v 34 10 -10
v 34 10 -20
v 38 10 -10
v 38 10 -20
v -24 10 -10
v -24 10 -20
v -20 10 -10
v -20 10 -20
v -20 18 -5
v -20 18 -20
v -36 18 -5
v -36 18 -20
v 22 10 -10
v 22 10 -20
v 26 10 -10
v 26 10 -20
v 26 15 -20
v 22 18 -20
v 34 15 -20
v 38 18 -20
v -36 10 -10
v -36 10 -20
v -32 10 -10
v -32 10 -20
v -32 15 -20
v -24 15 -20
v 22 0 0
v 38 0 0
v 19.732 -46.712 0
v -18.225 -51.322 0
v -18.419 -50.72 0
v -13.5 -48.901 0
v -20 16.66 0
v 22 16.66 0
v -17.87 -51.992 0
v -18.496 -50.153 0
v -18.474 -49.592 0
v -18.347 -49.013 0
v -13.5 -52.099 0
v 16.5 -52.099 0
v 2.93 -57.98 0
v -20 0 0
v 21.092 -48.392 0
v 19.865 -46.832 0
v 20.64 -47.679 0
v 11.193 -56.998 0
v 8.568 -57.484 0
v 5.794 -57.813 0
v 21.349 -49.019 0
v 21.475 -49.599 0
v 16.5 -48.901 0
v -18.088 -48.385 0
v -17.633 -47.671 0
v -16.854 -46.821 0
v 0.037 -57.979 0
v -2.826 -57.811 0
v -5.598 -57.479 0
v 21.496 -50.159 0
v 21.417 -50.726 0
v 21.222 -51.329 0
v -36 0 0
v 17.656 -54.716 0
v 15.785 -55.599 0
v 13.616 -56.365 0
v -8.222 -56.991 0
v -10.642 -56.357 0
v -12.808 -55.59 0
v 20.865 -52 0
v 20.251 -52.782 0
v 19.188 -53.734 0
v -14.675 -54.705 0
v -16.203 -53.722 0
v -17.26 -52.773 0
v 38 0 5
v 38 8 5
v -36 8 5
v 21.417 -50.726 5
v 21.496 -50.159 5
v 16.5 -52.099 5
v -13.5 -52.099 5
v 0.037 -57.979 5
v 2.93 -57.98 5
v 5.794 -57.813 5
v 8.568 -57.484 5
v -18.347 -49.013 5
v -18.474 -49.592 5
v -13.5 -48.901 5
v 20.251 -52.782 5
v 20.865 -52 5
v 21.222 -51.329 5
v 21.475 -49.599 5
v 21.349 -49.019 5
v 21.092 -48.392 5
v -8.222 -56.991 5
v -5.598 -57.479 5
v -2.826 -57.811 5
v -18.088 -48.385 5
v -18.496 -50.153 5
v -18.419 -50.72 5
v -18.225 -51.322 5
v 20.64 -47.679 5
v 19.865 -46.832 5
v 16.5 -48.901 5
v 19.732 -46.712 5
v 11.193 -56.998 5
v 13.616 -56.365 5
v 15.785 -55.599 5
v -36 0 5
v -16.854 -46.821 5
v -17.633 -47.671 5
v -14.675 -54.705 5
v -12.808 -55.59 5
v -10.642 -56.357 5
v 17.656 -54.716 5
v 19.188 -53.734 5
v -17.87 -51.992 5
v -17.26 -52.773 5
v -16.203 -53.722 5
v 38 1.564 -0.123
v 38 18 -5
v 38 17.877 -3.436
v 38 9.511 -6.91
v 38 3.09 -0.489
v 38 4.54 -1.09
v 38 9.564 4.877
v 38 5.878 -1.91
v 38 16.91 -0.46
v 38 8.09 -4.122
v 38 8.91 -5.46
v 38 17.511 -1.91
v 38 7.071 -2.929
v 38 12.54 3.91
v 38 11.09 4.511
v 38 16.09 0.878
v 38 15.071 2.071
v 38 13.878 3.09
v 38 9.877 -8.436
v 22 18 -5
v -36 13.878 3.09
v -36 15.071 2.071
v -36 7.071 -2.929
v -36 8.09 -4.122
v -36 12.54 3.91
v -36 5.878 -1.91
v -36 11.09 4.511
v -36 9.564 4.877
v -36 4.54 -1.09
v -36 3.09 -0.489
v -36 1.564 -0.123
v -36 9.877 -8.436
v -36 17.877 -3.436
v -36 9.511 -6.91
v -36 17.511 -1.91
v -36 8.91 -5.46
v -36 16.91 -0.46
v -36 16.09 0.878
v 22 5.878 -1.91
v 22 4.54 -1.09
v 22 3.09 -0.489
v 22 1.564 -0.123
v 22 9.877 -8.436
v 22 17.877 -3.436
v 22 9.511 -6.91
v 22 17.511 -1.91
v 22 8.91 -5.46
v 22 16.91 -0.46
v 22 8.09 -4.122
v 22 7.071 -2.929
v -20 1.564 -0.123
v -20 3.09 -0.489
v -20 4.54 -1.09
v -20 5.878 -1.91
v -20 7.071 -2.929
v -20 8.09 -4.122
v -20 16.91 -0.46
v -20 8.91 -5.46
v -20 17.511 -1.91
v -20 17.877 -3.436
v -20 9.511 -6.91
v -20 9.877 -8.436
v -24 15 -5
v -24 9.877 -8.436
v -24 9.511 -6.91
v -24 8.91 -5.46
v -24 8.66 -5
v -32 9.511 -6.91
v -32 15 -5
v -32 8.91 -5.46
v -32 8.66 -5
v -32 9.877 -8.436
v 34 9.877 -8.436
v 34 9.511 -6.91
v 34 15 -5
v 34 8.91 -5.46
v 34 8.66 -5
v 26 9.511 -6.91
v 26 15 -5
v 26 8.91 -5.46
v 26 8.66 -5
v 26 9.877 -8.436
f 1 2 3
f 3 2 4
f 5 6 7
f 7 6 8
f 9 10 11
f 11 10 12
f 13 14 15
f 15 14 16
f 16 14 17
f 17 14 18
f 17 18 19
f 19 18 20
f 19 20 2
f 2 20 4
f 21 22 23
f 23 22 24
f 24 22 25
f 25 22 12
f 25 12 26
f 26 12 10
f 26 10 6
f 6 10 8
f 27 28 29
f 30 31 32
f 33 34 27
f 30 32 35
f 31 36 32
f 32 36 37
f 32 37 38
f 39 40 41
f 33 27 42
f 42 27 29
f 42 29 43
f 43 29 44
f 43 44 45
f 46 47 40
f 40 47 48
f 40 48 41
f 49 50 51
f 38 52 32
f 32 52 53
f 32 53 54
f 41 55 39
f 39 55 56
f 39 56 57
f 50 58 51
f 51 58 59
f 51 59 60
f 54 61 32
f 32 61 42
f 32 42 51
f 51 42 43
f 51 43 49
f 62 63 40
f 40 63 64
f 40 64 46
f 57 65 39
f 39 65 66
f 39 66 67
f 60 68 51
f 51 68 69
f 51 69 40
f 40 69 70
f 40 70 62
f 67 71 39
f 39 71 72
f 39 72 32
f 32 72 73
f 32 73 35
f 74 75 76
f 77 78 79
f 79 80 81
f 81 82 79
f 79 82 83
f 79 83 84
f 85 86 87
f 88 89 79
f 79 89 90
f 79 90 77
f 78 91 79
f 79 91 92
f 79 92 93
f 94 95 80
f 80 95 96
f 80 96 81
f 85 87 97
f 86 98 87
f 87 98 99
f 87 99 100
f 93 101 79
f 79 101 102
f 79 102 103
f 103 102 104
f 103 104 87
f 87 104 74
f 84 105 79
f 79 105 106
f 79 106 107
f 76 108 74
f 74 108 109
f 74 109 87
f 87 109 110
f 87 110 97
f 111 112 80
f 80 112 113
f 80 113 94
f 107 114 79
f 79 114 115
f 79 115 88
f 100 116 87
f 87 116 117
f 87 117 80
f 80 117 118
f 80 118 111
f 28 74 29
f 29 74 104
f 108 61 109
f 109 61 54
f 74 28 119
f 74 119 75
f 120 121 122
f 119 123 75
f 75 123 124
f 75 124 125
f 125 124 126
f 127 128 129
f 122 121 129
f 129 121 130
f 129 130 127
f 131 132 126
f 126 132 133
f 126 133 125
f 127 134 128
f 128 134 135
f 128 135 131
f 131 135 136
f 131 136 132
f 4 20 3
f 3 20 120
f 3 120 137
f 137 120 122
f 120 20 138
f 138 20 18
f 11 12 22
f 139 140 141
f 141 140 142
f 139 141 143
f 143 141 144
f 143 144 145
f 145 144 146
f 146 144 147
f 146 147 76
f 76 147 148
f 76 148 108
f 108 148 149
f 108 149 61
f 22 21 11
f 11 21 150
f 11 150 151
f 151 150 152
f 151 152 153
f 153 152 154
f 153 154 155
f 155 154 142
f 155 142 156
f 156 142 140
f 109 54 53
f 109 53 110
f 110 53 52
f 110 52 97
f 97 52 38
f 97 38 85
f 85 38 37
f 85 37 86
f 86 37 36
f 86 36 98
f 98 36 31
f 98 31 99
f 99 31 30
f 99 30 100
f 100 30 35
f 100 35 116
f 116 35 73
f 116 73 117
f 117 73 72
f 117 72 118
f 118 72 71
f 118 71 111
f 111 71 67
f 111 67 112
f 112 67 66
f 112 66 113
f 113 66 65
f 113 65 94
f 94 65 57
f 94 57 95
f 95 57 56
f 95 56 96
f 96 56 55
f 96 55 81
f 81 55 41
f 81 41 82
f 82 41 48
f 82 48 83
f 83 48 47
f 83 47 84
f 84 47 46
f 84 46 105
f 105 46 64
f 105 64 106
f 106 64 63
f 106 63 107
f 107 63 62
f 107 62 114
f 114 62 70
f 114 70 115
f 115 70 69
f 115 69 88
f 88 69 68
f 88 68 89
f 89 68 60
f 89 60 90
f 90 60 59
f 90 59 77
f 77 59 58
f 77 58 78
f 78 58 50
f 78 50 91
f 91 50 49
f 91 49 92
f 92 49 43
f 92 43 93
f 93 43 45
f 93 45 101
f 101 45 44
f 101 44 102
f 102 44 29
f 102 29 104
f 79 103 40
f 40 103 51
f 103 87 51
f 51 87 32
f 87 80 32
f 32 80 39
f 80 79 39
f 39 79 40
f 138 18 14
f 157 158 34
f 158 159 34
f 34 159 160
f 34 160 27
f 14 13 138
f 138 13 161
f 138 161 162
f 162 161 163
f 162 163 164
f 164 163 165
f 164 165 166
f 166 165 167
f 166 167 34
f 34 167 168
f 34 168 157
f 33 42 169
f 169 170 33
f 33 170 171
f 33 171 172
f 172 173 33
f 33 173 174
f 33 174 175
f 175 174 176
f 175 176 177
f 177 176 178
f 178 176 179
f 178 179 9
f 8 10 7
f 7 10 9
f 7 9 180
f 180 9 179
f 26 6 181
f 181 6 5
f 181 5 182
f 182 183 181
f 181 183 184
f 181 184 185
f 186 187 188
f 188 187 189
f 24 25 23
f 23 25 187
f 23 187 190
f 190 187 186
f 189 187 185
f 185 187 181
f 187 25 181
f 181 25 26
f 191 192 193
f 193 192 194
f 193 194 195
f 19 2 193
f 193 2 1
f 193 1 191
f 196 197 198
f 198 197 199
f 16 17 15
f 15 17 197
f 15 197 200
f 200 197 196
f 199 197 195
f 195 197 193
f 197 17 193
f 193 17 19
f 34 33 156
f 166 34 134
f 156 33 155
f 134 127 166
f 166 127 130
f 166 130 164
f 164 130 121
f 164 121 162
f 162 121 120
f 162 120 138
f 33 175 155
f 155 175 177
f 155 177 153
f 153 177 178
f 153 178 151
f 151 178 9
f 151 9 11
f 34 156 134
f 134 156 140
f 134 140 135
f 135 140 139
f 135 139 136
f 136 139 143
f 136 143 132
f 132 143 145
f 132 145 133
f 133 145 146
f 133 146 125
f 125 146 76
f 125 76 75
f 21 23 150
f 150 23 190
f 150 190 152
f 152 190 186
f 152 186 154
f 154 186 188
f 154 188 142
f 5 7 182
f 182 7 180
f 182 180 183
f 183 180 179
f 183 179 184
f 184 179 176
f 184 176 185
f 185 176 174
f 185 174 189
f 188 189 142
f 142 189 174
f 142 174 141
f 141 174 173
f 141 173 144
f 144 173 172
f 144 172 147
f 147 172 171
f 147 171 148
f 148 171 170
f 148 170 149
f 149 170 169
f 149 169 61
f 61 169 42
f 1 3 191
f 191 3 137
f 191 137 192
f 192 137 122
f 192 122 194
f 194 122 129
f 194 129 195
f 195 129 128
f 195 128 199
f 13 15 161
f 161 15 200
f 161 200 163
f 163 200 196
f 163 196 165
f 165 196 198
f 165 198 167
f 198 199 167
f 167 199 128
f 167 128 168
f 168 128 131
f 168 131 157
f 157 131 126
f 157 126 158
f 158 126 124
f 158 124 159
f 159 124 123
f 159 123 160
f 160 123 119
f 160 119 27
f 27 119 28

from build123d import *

# Parameters (mm, degrees)
PLATE_FEATURE_DEPTH        = 5
STRAP_FEATURE_SKETCH_RX    = 20
STRAP_FEATURE_SKETCH_RY    = 8
STRAP_FEATURE_DEPTH        = 5
STRAP_CUT_SKETCH_W         = 30
STRAP_CUT_SKETCH_H         = 3.19824666
STRAP_CUT_DEPTH            = 5
LEFT_LEG_FEATURE_SKETCH_W  = 16
LEFT_LEG_FEATURE_SKETCH_H  = 8
LEFT_LEG_FEATURE_DEPTH     = 20
RIGHT_LEG_FEATURE_SKETCH_W = 16
RIGHT_LEG_FEATURE_SKETCH_H = 8
RIGHT_LEG_FEATURE_DEPTH    = 20
TAB_CUT_SKETCH_W           = 8
TAB_CUT_SKETCH_H           = 15
TAB_CUT_DEPTH              = 5
FILLET1_R                  = 10
FILLET2_R                  = 10
FILLET3_R                  = 10


with BuildPart() as part:
    # Plate Feature Sketch → Plate Feature (new body)
    with BuildSketch(Plane.XY):
        Polygon((-36, 18), (-36, 0), (-15.55368079, -50), (18.44631921, -50), (38, 0), (38, 18), align=None)
    extrude(amount=PLATE_FEATURE_DEPTH)

    # Strap Feature Sketch → Strap Feature (add)
    with BuildSketch(Plane.XY):
        with Locations((1.5, -50)):
            Ellipse(STRAP_FEATURE_SKETCH_RX, STRAP_FEATURE_SKETCH_RY)
    extrude(amount=STRAP_FEATURE_DEPTH)

    # Strap Cut Sketch → Strap Cut (cut)
    with BuildSketch(Plane.XY):
        with Locations((1.5, -50.5)):
            Rectangle(STRAP_CUT_SKETCH_W, STRAP_CUT_SKETCH_H)
    extrude(amount=STRAP_CUT_DEPTH, mode=Mode.SUBTRACT)

    # Left Leg Feature Sketch → Left Leg Feature (add)
    with BuildSketch(Plane.XY):
        with Locations((30, 14)):
            Rectangle(LEFT_LEG_FEATURE_SKETCH_W, LEFT_LEG_FEATURE_SKETCH_H)
    extrude(amount=-LEFT_LEG_FEATURE_DEPTH)

    # Right Leg Feature Sketch → Right Leg Feature (add)
    with BuildSketch(Plane.XY):
        with Locations((-28, 14)):
            Rectangle(RIGHT_LEG_FEATURE_SKETCH_W, RIGHT_LEG_FEATURE_SKETCH_H)
    extrude(amount=-RIGHT_LEG_FEATURE_DEPTH)

    # Tab Cut Sketch → Tab Cut (cut)
    with BuildSketch(Plane(origin=(0, 10, 0), x_dir=(1, 0, 0), z_dir=(0, 1, 0))):
        with Locations((-28, 12.5)):
            Rectangle(TAB_CUT_SKETCH_W, TAB_CUT_SKETCH_H)
        with Locations((30, 12.5)):
            Rectangle(TAB_CUT_SKETCH_W, TAB_CUT_SKETCH_H)
    extrude(amount=TAB_CUT_DEPTH, mode=Mode.SUBTRACT)

    # Fillet1
    # the kernel refuses this fillet: 10 mm, written as the material it takes off along each edge
    with BuildSketch(Plane(origin=(63, 18, 5), x_dir=(0, 0, -1), z_dir=(-1, 0, 0))) as fillet1_piece_1:
        with BuildLine():
            CenterArc((FILLET1_R, FILLET1_R), FILLET1_R, 180, 90)
            Line((0, FILLET1_R), (0, 0))
            Line((0, 0), (FILLET1_R, 0))
        make_face()
    extrude(amount=124, mode=Mode.SUBTRACT)

    # Fillet2
    # the kernel refuses this fillet: 10 mm, written as the material it adds along each edge
    with BuildSketch(Plane(origin=(-36, 10, 0), x_dir=(0, 0, -1), z_dir=(1, 0, 0))) as fillet2_piece_1_section:
        with BuildLine():
            CenterArc((FILLET2_R, -FILLET2_R), FILLET2_R, 90, 90)
            Line((0, -FILLET2_R), (0, 0))
            Line((0, 0), (FILLET2_R, 0))
        make_face()
    fillet2_piece_1 = extrude(amount=16, mode=Mode.PRIVATE)
    fillet2_piece_1 = split(fillet2_piece_1, bisect_by=Plane(origin=(-34, 9.759916183, -5), z_dir=(0, 0, -1)), keep=Keep.TOP, mode=Mode.PRIVATE)
    fillet2_piece_1 = split(fillet2_piece_1, bisect_by=Plane(origin=(-32, 9.759916183, -6.632507845), z_dir=(-1, 0, 0)), keep=Keep.TOP, mode=Mode.PRIVATE)
    add(fillet2_piece_1)
    with BuildSketch(Plane(origin=(-36, 10, 0), x_dir=(0, 0, -1), z_dir=(1, 0, 0))) as fillet2_piece_2_section:
        with BuildLine():
            CenterArc((FILLET2_R, -FILLET2_R), FILLET2_R, 90, 90)
            Line((0, -FILLET2_R), (0, 0))
            Line((0, 0), (FILLET2_R, 0))
        make_face()
    fillet2_piece_2 = extrude(amount=16, mode=Mode.PRIVATE)
    fillet2_piece_2 = split(fillet2_piece_2, bisect_by=Plane(origin=(-34, 7.4487994, -5), z_dir=(0, 0, 1)), keep=Keep.TOP, mode=Mode.PRIVATE)
    fillet2_piece_2 = split(fillet2_piece_2, bisect_by=Plane(origin=(-32, 7.4487994, -1.643917643), z_dir=(-1, 0, 0)), keep=Keep.TOP, mode=Mode.PRIVATE)
    add(fillet2_piece_2)
    with BuildSketch(Plane(origin=(-36, 10, 0), x_dir=(0, 0, -1), z_dir=(1, 0, 0))) as fillet2_piece_3_section:
        with BuildLine():
            CenterArc((FILLET2_R, -FILLET2_R), FILLET2_R, 90, 90)
            Line((0, -FILLET2_R), (0, 0))
            Line((0, 0), (FILLET2_R, 0))
        make_face()
    fillet2_piece_3 = extrude(amount=16, mode=Mode.PRIVATE)
    fillet2_piece_3 = split(fillet2_piece_3, bisect_by=Plane(origin=(-24, 7.4487994, -1.643917643), z_dir=(-1, 0, 0)), keep=Keep.TOP, mode=Mode.PRIVATE)
    fillet2_piece_3 = split(fillet2_piece_3, bisect_by=Plane(origin=(-28, 7.4487994, -5), z_dir=(0, 0, 1)), keep=Keep.TOP, mode=Mode.PRIVATE)
    fillet2_piece_3 = split(fillet2_piece_3, bisect_by=Plane(origin=(-32, 7.4487994, -1.643917643), z_dir=(1, 0, 0)), keep=Keep.TOP, mode=Mode.PRIVATE)
    add(fillet2_piece_3)
    with BuildSketch(Plane(origin=(-36, 10, 0), x_dir=(0, 0, -1), z_dir=(1, 0, 0))) as fillet2_piece_4_section:
        with BuildLine():
            CenterArc((FILLET2_R, -FILLET2_R), FILLET2_R, 90, 90)
            Line((0, -FILLET2_R), (0, 0))
            Line((0, 0), (FILLET2_R, 0))
        make_face()
    fillet2_piece_4 = extrude(amount=16, mode=Mode.PRIVATE)
    fillet2_piece_4 = split(fillet2_piece_4, bisect_by=Plane(origin=(-24, 9.759916183, -6.632507845), z_dir=(1, 0, 0)), keep=Keep.TOP, mode=Mode.PRIVATE)
    fillet2_piece_4 = split(fillet2_piece_4, bisect_by=Plane(origin=(-22, 9.759916183, -5), z_dir=(0, 0, -1)), keep=Keep.TOP, mode=Mode.PRIVATE)
    add(fillet2_piece_4)
    with BuildSketch(Plane(origin=(-36, 10, 0), x_dir=(0, 0, -1), z_dir=(1, 0, 0))) as fillet2_piece_5_section:
        with BuildLine():
            CenterArc((FILLET2_R, -FILLET2_R), FILLET2_R, 90, 90)
            Line((0, -FILLET2_R), (0, 0))
            Line((0, 0), (FILLET2_R, 0))
        make_face()
    fillet2_piece_5 = extrude(amount=16, mode=Mode.PRIVATE)
    fillet2_piece_5 = split(fillet2_piece_5, bisect_by=Plane(origin=(-24, 7.4487994, -1.643917643), z_dir=(1, 0, 0)), keep=Keep.TOP, mode=Mode.PRIVATE)
    fillet2_piece_5 = split(fillet2_piece_5, bisect_by=Plane(origin=(-22, 7.4487994, -5), z_dir=(0, 0, 1)), keep=Keep.TOP, mode=Mode.PRIVATE)
    add(fillet2_piece_5)

    # Fillet3
    # the kernel refuses this fillet: 10 mm, written as the material it adds along each edge
    with BuildSketch(Plane(origin=(38, 10, 0), x_dir=(0, 0, -1), z_dir=(-1, 0, 0))) as fillet3_piece_1_section:
        with BuildLine():
            CenterArc((FILLET3_R, FILLET3_R), FILLET3_R, 180, 90)
            Line((0, FILLET3_R), (0, 0))
            Line((0, 0), (FILLET3_R, 0))
        make_face()
    fillet3_piece_1 = extrude(amount=16, mode=Mode.PRIVATE)
    fillet3_piece_1 = split(fillet3_piece_1, bisect_by=Plane(origin=(36, 9.759916183, -5), z_dir=(0, 0, -1)), keep=Keep.TOP, mode=Mode.PRIVATE)
    fillet3_piece_1 = split(fillet3_piece_1, bisect_by=Plane(origin=(34, 9.759916183, -6.632507845), z_dir=(1, 0, 0)), keep=Keep.TOP, mode=Mode.PRIVATE)
    add(fillet3_piece_1)
    with BuildSketch(Plane(origin=(38, 10, 0), x_dir=(0, 0, -1), z_dir=(-1, 0, 0))) as fillet3_piece_2_section:
        with BuildLine():
            CenterArc((FILLET3_R, FILLET3_R), FILLET3_R, 180, 90)
            Line((0, FILLET3_R), (0, 0))
            Line((0, 0), (FILLET3_R, 0))
        make_face()
    fillet3_piece_2 = extrude(amount=16, mode=Mode.PRIVATE)
    fillet3_piece_2 = split(fillet3_piece_2, bisect_by=Plane(origin=(36, 7.4487994, -5), z_dir=(0, 0, 1)), keep=Keep.TOP, mode=Mode.PRIVATE)
    fillet3_piece_2 = split(fillet3_piece_2, bisect_by=Plane(origin=(34, 7.4487994, -1.643917643), z_dir=(1, 0, 0)), keep=Keep.TOP, mode=Mode.PRIVATE)
    add(fillet3_piece_2)
    with BuildSketch(Plane(origin=(38, 10, 0), x_dir=(0, 0, -1), z_dir=(-1, 0, 0))) as fillet3_piece_3_section:
        with BuildLine():
            CenterArc((FILLET3_R, FILLET3_R), FILLET3_R, 180, 90)
            Line((0, FILLET3_R), (0, 0))
            Line((0, 0), (FILLET3_R, 0))
        make_face()
    fillet3_piece_3 = extrude(amount=16, mode=Mode.PRIVATE)
    fillet3_piece_3 = split(fillet3_piece_3, bisect_by=Plane(origin=(26, 7.4487994, -1.643917643), z_dir=(1, 0, 0)), keep=Keep.TOP, mode=Mode.PRIVATE)
    fillet3_piece_3 = split(fillet3_piece_3, bisect_by=Plane(origin=(30, 7.4487994, -5), z_dir=(0, 0, 1)), keep=Keep.TOP, mode=Mode.PRIVATE)
    fillet3_piece_3 = split(fillet3_piece_3, bisect_by=Plane(origin=(34, 7.4487994, -1.643917643), z_dir=(-1, 0, 0)), keep=Keep.TOP, mode=Mode.PRIVATE)
    add(fillet3_piece_3)
    with BuildSketch(Plane(origin=(38, 10, 0), x_dir=(0, 0, -1), z_dir=(-1, 0, 0))) as fillet3_piece_4_section:
        with BuildLine():
            CenterArc((FILLET3_R, FILLET3_R), FILLET3_R, 180, 90)
            Line((0, FILLET3_R), (0, 0))
            Line((0, 0), (FILLET3_R, 0))
        make_face()
    fillet3_piece_4 = extrude(amount=16, mode=Mode.PRIVATE)
    fillet3_piece_4 = split(fillet3_piece_4, bisect_by=Plane(origin=(26, 9.759916183, -6.632507845), z_dir=(-1, 0, 0)), keep=Keep.TOP, mode=Mode.PRIVATE)
    fillet3_piece_4 = split(fillet3_piece_4, bisect_by=Plane(origin=(24, 9.759916183, -5), z_dir=(0, 0, -1)), keep=Keep.TOP, mode=Mode.PRIVATE)
    add(fillet3_piece_4)
    with BuildSketch(Plane(origin=(38, 10, 0), x_dir=(0, 0, -1), z_dir=(-1, 0, 0))) as fillet3_piece_5_section:
        with BuildLine():
            CenterArc((FILLET3_R, FILLET3_R), FILLET3_R, 180, 90)
            Line((0, FILLET3_R), (0, 0))
            Line((0, 0), (FILLET3_R, 0))
        make_face()
    fillet3_piece_5 = extrude(amount=16, mode=Mode.PRIVATE)
    fillet3_piece_5 = split(fillet3_piece_5, bisect_by=Plane(origin=(26, 7.4487994, -1.643917643), z_dir=(-1, 0, 0)), keep=Keep.TOP, mode=Mode.PRIVATE)
    fillet3_piece_5 = split(fillet3_piece_5, bisect_by=Plane(origin=(24, 7.4487994, -5), z_dir=(0, 0, 1)), keep=Keep.TOP, mode=Mode.PRIVATE)
    add(fillet3_piece_5)


solid = part.part
